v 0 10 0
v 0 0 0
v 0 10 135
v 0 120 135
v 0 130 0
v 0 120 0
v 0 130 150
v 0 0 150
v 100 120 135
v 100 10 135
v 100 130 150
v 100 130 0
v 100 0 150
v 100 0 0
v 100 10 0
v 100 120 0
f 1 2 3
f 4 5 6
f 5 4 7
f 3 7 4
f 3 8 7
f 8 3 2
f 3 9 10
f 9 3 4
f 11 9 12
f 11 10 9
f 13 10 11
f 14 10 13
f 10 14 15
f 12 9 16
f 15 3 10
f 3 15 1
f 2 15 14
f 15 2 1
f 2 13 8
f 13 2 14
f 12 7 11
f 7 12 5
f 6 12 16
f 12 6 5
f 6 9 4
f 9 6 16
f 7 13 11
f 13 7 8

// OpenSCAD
cube([100,10,150-15]);
translate([0,120,0])cube([100,10,150-15]);
translate([0,0,150-15])cube([100,130,15]);
